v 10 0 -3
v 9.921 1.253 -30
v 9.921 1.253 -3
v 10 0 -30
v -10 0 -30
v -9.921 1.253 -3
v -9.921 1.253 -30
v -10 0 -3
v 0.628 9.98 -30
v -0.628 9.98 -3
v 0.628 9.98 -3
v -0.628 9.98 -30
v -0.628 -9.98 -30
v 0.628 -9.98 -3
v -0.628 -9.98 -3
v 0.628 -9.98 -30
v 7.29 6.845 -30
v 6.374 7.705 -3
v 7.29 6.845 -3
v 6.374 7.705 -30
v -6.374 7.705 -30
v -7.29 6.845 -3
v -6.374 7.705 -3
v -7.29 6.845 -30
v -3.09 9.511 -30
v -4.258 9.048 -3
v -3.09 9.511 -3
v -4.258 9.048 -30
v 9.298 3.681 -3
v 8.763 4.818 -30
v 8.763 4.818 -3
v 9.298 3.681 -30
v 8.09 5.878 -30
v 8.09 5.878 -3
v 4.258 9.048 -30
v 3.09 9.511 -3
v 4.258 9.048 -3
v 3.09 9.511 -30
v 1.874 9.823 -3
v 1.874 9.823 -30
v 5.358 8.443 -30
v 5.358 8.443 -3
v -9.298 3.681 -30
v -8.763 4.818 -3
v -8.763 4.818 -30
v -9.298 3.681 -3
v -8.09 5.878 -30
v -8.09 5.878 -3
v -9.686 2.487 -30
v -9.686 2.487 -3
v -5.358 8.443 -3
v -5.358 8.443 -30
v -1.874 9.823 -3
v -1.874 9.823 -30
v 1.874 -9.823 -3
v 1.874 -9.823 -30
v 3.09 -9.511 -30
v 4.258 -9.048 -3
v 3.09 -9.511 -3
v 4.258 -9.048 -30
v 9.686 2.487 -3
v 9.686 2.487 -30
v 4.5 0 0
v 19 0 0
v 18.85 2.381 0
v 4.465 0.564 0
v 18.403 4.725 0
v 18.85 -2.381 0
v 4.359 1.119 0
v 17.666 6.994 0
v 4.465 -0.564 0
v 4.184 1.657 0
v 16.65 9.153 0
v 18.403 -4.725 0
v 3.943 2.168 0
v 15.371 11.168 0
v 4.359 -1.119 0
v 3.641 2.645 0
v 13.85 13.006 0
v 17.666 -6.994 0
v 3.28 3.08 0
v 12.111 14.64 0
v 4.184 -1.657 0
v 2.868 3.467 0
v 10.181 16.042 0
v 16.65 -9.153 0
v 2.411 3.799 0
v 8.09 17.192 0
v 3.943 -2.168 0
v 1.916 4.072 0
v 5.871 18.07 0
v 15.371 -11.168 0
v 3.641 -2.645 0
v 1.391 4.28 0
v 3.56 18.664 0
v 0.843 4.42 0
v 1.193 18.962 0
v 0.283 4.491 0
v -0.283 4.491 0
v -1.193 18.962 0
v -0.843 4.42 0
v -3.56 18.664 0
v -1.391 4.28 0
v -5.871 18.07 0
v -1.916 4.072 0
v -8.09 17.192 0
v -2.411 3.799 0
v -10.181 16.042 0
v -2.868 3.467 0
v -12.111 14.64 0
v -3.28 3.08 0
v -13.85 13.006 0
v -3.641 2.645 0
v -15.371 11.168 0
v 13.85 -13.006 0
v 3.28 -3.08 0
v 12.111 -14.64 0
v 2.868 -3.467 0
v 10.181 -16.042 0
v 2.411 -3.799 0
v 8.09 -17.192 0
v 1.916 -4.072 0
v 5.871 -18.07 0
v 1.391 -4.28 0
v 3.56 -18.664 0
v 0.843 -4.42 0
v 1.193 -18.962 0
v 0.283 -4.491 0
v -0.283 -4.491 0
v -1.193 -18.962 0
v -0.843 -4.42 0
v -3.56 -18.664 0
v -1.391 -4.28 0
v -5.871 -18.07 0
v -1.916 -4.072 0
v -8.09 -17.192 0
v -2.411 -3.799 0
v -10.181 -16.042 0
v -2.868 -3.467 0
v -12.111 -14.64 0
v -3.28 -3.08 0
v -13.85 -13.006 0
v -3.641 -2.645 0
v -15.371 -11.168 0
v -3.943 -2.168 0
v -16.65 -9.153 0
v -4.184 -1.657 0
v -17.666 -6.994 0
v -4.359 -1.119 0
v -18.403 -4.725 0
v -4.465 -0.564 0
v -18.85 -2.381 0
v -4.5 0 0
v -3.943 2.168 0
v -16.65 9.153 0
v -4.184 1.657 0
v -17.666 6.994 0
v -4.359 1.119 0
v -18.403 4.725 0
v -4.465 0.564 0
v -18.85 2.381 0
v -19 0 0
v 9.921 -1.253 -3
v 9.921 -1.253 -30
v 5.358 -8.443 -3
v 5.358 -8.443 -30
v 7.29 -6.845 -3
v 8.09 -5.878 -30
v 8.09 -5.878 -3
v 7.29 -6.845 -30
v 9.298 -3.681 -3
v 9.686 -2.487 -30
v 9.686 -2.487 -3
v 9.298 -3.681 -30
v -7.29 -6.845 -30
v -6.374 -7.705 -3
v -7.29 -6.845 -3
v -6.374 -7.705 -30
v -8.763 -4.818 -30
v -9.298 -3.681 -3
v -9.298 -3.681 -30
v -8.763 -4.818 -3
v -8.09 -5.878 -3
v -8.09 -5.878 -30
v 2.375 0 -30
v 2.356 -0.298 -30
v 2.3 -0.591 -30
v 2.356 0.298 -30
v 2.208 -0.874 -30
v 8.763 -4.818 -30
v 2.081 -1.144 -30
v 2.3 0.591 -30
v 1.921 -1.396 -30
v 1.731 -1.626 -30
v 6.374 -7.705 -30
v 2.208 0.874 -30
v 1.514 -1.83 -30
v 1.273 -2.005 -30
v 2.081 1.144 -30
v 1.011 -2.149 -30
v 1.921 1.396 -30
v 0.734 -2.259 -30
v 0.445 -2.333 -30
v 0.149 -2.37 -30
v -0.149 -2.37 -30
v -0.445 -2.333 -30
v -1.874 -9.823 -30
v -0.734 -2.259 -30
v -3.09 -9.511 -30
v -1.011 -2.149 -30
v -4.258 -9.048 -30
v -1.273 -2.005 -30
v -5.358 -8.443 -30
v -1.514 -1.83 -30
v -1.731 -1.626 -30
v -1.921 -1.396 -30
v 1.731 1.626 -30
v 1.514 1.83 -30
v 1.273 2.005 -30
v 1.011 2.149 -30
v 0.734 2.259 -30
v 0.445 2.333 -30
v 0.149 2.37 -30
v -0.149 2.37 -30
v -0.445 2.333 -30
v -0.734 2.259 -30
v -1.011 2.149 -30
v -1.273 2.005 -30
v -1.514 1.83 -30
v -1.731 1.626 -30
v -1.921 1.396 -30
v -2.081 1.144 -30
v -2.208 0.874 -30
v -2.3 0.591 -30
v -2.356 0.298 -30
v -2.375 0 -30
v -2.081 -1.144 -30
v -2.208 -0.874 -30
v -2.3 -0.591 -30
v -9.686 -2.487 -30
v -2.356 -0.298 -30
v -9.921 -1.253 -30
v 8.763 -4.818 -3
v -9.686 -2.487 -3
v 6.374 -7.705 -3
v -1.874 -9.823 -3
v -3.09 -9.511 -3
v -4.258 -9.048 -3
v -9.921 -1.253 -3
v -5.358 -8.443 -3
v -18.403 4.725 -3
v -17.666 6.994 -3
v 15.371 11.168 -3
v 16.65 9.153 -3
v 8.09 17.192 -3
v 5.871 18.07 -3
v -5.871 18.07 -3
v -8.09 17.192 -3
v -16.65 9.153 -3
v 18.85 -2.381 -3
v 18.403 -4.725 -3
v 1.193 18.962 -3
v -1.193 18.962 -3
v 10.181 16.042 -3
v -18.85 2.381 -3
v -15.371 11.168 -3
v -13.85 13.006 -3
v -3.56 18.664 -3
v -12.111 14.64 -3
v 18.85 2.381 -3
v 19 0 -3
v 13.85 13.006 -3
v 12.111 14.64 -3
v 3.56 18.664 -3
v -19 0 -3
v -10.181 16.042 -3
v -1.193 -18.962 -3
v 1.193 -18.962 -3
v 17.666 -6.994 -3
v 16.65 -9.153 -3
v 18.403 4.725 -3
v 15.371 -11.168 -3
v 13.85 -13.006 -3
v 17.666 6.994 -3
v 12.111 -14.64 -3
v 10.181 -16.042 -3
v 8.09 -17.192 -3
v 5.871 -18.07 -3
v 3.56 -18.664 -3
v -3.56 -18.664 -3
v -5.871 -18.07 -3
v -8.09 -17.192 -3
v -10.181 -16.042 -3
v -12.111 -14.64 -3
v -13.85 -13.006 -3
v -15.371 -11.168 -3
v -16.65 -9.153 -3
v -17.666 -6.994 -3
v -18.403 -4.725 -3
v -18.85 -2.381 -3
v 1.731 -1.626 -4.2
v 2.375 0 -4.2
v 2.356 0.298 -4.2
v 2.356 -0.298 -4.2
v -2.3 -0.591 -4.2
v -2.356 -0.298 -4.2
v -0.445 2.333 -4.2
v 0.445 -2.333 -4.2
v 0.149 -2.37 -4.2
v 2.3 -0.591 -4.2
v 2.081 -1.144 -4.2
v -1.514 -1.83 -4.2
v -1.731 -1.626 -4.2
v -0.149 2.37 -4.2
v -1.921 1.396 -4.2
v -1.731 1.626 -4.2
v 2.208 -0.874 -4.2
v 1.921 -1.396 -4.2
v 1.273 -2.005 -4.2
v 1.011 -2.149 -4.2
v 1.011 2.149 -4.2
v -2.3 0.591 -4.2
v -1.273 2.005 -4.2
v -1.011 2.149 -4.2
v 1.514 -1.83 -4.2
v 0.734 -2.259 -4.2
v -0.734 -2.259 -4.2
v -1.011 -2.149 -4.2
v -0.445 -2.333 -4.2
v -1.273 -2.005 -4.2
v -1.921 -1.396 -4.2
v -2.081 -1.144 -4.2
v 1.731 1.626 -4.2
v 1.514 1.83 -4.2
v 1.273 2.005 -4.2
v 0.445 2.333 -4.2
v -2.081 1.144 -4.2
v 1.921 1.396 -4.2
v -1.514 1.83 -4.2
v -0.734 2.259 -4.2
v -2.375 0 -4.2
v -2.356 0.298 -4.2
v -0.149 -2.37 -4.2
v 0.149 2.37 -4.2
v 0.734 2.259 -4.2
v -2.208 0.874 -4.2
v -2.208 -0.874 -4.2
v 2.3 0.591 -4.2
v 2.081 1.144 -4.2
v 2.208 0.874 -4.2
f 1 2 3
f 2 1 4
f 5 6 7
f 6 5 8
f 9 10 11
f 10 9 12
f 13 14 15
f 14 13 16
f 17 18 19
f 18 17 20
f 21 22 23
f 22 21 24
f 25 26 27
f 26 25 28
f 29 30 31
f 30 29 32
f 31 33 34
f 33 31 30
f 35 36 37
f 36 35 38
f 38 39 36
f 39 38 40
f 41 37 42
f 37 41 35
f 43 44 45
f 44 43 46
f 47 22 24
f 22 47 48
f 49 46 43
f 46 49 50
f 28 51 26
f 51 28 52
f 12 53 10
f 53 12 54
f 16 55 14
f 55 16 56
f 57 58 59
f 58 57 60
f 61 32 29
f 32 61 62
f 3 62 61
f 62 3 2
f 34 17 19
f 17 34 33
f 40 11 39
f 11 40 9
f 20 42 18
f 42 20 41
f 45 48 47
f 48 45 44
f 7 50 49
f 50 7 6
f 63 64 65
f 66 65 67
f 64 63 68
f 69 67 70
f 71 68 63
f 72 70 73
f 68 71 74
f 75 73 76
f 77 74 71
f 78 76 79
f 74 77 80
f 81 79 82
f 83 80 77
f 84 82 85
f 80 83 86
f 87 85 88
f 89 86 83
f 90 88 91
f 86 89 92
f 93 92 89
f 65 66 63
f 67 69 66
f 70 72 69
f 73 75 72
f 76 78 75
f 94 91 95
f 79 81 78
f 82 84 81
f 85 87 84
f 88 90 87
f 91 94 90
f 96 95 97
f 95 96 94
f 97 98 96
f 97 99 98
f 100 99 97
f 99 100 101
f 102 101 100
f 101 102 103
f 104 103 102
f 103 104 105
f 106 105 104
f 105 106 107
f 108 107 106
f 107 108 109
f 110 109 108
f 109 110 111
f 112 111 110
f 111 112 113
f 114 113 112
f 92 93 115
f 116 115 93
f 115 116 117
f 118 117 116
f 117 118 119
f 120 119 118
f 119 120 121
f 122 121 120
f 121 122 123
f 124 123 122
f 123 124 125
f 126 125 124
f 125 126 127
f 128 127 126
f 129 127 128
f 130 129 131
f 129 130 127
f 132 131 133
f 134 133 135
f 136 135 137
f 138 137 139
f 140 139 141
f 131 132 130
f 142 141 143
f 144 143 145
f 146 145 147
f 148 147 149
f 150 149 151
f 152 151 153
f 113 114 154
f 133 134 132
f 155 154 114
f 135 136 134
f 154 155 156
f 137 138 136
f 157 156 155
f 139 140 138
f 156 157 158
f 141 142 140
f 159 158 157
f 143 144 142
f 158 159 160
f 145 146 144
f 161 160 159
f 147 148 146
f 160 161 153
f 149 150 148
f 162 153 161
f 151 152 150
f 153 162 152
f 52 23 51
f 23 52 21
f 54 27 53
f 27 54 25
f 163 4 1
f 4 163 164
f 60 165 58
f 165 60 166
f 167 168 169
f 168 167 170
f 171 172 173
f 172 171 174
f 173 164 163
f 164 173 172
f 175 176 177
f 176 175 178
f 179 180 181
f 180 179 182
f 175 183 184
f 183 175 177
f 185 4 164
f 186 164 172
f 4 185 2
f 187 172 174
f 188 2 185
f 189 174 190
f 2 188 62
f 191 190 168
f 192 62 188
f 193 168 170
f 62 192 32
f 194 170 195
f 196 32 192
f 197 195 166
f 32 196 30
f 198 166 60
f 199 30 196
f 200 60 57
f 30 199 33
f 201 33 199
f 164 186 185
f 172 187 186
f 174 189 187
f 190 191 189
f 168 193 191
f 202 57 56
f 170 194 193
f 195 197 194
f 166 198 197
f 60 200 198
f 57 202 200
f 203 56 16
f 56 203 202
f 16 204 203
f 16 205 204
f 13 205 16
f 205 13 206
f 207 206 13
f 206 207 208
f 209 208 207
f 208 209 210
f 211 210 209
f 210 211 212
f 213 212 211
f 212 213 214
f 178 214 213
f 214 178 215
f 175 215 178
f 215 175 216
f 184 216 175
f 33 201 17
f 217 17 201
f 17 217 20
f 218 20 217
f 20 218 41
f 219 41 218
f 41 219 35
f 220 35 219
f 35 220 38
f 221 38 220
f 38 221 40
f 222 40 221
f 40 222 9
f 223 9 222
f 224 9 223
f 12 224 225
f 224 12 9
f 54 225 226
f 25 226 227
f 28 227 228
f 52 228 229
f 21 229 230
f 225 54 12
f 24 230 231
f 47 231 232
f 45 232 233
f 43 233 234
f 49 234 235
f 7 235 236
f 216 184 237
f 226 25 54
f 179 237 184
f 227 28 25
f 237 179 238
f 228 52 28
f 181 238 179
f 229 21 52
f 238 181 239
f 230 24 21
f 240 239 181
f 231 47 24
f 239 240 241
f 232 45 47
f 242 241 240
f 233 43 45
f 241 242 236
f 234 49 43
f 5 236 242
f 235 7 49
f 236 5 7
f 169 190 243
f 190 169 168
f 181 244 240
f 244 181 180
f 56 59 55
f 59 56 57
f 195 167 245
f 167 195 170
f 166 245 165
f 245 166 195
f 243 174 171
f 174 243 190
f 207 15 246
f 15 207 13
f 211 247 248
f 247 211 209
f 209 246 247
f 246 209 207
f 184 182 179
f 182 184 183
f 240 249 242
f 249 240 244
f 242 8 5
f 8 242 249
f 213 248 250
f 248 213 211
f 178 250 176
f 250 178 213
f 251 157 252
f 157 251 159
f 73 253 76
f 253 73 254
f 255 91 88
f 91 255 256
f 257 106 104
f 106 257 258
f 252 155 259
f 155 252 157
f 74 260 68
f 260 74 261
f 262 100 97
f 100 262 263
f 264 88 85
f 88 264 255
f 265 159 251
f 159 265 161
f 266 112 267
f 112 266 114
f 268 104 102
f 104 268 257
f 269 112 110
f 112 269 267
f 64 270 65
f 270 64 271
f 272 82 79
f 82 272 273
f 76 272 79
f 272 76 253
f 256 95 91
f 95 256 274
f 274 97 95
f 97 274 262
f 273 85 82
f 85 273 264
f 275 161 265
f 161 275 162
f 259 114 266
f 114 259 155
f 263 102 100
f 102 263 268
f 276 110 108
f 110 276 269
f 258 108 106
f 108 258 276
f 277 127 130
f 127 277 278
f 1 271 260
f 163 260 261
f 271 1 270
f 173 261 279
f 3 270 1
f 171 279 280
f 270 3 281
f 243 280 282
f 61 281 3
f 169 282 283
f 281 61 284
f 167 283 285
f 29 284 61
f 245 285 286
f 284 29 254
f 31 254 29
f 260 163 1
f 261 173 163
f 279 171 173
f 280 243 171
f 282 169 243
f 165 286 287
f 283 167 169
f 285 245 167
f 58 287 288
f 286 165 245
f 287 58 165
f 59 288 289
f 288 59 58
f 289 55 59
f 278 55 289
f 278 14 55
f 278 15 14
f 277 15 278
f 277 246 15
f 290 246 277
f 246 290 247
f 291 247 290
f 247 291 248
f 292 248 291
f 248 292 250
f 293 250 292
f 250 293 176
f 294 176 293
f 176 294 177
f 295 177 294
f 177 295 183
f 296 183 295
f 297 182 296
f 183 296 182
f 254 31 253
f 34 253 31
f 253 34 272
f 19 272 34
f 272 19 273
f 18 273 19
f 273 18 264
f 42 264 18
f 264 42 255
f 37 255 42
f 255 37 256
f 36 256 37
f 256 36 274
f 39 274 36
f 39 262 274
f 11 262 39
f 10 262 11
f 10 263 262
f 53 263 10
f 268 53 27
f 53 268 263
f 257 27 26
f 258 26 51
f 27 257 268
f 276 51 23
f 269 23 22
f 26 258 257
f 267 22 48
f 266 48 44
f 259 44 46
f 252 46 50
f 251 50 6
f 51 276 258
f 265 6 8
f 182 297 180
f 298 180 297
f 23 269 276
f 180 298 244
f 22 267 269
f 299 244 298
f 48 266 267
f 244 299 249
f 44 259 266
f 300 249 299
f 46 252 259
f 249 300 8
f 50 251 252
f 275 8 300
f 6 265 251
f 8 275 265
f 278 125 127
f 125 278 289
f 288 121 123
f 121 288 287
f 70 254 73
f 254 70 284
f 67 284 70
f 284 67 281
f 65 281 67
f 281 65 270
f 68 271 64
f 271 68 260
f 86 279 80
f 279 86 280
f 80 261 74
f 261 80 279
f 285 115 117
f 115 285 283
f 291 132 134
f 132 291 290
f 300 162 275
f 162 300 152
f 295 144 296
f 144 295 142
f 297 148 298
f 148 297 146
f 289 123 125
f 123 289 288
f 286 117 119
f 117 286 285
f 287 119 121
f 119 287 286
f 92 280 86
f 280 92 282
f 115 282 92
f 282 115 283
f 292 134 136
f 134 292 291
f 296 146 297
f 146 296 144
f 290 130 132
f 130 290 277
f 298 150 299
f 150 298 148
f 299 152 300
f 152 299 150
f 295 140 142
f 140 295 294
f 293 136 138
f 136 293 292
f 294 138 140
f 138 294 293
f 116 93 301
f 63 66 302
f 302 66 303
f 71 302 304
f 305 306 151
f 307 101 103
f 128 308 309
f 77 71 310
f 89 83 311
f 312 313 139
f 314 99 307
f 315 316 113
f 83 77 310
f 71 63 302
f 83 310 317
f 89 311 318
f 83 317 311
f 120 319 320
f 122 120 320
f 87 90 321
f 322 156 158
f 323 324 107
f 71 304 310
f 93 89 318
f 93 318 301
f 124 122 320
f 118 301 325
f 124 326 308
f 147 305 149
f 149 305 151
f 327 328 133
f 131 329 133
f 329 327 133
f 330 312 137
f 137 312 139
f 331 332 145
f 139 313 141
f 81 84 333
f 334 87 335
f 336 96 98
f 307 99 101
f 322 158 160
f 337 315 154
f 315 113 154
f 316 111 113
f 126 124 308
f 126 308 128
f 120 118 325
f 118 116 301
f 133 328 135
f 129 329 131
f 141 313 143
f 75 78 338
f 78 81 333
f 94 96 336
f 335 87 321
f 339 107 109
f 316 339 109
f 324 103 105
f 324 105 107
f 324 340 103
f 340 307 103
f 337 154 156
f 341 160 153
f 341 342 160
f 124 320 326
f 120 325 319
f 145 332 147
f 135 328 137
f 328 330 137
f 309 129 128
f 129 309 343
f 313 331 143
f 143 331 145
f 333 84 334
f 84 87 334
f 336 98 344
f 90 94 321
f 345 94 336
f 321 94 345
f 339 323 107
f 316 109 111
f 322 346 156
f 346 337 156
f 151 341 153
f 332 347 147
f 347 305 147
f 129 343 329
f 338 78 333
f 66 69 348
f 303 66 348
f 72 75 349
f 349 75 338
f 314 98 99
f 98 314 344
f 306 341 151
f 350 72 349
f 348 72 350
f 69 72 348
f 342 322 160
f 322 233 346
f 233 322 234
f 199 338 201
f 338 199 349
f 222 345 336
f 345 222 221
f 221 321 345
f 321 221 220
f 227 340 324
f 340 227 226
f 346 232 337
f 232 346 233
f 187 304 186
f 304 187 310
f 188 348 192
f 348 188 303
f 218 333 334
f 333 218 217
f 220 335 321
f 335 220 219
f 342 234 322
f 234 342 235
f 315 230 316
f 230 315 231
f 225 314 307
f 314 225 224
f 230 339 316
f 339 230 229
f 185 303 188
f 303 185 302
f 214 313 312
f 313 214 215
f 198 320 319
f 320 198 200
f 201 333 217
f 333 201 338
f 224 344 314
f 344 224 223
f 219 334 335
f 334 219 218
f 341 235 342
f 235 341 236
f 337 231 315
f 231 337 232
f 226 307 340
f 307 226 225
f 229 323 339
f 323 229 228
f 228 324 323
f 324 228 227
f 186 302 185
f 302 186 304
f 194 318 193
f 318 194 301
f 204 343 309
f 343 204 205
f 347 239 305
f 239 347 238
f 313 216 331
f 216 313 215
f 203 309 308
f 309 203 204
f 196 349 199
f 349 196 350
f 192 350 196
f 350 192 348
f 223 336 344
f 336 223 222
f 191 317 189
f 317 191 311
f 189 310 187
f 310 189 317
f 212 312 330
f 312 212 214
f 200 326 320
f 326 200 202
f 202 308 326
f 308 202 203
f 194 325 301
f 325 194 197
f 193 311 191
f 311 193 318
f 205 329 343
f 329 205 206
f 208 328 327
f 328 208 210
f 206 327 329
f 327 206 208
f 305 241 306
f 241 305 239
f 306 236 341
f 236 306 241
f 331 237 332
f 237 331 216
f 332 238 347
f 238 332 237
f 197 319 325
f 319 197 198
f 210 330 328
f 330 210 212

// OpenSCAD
$fn = 50;


difference() {
	union() {
		translate(v = [0, 0, -30.0000000000]) {
			cylinder(h = 30, r = 10.0000000000);
		}
		translate(v = [0, 0, -3.0000000000]) {
			cylinder(h = 3, r = 19.0000000000);
		}
	}
	union() {
		translate(v = [0, 0, 0]) {
			rotate(a = [0, 0, 0]) {
				difference() {
					union() {
						#translate(v = [0, 0, -30.0000000000]) {
							cylinder(h = 30, r = 2.2500000000);
						}
						#translate(v = [0, 0, -4.2000000000]) {
							cylinder(h = 4.2000000000, r = 10.0000000000, r1 = 2.3750000000, r2 = 4.5000000000);
						}
						#translate(v = [0, 0, -30.0000000000]) {
							cylinder(h = 30, r = 2.3750000000);
						}
						#translate(v = [0, 0, -30.0000000000]) {
							cylinder(h = 30, r = 2.2500000000);
						}
					}
					union();
				}
			}
		}
	}
}
